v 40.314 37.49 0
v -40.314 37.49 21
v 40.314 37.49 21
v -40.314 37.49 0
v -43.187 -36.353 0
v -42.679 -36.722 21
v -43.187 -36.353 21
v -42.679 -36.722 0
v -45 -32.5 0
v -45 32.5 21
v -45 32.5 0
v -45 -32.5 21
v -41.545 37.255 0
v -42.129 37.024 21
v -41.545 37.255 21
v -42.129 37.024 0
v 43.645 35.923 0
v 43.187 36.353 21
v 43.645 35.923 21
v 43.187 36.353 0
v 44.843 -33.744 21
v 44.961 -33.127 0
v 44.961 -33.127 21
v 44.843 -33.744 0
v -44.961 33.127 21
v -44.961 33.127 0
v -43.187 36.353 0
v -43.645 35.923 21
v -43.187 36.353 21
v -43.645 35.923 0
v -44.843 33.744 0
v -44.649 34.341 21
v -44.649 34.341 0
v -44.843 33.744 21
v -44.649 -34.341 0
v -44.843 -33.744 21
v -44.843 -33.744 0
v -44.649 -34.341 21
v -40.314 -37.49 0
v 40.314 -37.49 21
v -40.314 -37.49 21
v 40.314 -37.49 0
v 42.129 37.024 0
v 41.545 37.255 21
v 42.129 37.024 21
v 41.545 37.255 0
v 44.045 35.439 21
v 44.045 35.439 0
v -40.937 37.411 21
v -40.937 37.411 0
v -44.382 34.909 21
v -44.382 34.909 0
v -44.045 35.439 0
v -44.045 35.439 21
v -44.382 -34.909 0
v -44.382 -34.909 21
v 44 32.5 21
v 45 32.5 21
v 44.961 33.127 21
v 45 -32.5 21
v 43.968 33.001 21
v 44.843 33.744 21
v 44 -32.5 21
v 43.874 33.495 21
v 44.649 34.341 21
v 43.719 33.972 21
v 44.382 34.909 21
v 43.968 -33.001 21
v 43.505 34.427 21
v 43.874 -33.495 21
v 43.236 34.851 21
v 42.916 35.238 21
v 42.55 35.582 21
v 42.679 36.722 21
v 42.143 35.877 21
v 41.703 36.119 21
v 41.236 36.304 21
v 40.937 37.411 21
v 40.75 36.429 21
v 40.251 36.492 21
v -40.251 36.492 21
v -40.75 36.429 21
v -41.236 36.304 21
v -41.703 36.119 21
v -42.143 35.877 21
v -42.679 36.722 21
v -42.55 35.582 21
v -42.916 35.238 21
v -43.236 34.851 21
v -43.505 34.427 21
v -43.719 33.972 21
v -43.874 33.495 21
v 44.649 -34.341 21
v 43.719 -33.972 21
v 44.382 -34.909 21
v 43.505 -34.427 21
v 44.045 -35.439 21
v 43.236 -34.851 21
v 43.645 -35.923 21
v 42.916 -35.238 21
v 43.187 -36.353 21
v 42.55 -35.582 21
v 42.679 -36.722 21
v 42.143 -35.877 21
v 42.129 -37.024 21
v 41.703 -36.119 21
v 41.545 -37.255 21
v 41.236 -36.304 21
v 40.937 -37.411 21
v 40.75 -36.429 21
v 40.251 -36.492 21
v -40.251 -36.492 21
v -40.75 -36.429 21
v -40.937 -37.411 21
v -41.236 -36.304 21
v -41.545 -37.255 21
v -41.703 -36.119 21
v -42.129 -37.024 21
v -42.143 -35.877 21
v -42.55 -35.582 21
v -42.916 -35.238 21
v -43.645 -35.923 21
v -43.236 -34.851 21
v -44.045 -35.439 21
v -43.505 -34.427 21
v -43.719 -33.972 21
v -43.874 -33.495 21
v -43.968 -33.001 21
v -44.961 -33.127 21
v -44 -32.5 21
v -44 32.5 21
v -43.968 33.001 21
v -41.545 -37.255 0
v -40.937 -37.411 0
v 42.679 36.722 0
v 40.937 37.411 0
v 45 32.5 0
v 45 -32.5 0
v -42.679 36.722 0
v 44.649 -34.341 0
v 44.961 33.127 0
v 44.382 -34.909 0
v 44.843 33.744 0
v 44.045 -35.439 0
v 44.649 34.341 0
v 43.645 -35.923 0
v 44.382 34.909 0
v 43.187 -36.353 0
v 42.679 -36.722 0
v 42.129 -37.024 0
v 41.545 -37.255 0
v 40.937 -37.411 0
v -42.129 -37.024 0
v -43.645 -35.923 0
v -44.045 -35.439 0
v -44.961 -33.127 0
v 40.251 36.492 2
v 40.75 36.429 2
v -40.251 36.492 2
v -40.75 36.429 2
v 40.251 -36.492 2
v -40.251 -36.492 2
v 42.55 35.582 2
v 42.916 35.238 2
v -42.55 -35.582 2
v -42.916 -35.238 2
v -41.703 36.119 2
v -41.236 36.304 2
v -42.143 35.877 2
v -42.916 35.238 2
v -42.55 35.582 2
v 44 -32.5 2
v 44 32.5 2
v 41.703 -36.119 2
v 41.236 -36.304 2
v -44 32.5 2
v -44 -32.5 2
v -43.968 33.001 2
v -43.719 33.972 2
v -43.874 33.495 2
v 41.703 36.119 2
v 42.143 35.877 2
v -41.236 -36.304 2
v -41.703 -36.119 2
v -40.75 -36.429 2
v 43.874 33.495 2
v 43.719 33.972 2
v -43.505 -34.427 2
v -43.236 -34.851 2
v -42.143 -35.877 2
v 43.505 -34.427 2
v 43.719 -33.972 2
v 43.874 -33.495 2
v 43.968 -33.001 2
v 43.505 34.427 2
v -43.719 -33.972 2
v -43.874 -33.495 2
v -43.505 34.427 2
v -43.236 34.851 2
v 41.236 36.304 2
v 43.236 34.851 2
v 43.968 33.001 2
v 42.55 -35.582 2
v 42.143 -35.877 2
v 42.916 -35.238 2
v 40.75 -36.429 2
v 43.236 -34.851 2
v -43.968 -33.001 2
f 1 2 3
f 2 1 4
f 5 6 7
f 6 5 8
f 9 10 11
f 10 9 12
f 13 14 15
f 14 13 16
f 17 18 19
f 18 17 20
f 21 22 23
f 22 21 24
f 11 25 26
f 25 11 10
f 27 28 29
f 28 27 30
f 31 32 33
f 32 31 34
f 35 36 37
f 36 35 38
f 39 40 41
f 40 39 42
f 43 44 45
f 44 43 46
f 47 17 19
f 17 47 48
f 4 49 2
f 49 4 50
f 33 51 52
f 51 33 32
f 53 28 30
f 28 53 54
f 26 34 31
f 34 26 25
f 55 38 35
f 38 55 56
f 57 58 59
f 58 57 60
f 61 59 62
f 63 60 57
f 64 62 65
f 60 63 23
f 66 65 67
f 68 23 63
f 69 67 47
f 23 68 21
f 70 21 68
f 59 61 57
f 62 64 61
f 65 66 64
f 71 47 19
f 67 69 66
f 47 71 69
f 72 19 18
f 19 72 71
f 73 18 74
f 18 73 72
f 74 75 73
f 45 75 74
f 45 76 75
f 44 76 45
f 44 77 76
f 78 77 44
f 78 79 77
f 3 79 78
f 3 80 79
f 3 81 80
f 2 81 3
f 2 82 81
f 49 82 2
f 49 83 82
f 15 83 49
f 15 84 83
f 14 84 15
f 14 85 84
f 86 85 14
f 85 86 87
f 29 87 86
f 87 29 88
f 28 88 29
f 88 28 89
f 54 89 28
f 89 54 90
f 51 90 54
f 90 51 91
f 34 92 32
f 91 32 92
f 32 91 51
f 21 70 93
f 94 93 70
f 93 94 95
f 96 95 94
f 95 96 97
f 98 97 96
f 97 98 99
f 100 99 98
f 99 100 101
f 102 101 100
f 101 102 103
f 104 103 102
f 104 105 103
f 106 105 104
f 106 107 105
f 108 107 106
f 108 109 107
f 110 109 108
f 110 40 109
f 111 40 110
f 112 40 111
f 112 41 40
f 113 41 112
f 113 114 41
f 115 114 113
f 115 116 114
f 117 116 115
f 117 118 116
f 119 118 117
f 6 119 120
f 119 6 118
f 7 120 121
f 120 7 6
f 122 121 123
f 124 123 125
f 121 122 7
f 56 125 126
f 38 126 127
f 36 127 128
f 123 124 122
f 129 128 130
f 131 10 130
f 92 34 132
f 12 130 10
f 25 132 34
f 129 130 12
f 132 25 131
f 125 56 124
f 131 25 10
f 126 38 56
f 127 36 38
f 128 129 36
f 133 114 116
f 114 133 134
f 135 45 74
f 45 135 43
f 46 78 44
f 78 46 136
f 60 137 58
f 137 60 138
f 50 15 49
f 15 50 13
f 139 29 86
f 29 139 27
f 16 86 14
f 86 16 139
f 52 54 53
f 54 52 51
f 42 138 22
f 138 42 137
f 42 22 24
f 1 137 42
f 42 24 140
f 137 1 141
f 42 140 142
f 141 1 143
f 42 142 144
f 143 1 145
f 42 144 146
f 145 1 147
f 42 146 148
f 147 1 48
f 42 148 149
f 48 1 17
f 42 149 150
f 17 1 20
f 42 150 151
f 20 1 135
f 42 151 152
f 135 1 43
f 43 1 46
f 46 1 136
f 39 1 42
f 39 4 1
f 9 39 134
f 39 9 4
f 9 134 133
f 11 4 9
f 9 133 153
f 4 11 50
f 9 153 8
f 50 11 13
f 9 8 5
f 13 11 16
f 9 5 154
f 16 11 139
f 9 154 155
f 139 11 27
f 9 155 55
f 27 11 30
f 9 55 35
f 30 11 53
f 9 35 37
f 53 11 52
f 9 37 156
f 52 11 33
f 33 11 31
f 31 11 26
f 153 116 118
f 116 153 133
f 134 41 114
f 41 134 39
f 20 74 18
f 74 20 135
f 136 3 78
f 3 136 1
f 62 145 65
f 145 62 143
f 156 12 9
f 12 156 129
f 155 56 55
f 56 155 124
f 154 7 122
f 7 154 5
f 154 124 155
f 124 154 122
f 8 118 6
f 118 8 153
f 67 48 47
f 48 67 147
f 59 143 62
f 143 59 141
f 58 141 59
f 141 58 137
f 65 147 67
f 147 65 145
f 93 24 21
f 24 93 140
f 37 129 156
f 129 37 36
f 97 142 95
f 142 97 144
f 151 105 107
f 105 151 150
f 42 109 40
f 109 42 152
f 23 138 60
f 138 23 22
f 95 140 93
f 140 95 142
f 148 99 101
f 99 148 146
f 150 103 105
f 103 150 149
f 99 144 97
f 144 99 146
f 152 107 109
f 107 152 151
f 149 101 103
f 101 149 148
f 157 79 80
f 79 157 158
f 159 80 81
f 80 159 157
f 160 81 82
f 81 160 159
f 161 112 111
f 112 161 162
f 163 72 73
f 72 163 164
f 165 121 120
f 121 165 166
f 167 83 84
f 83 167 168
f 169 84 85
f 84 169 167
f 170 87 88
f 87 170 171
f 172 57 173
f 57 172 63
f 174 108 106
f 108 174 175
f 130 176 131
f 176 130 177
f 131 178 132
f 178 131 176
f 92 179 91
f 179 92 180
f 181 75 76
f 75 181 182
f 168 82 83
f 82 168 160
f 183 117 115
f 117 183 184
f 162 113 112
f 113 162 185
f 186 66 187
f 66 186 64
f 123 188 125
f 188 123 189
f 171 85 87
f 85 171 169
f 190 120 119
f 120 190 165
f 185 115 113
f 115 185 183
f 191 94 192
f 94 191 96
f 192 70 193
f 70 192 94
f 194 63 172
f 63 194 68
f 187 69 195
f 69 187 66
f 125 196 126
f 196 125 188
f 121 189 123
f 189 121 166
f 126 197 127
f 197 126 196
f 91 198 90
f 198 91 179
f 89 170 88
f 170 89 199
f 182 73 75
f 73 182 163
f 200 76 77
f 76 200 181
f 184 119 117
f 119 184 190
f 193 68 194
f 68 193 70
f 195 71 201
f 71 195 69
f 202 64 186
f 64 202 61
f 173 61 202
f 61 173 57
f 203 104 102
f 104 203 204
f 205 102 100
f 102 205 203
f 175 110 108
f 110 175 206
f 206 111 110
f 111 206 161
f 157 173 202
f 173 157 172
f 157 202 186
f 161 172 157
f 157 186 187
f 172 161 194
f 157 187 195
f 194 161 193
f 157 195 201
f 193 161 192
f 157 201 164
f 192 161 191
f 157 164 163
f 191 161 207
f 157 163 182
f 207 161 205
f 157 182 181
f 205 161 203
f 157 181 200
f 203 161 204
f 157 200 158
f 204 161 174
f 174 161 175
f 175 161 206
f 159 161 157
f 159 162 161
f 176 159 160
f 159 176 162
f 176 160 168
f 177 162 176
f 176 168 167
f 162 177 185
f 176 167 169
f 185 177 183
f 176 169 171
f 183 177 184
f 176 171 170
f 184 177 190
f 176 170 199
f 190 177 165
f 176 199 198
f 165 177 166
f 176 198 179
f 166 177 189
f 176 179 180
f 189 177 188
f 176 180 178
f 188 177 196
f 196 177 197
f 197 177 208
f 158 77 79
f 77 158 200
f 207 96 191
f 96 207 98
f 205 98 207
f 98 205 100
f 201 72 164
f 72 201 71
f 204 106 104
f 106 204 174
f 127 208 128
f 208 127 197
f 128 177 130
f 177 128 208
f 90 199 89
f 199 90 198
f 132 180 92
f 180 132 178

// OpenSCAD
$fn = 50;


difference() {
	union() {
		hull() {
			translate(v = [-40.0000000000, 32.5000000000, 0]) {
				cylinder(h = 21, r = 5);
			}
			translate(v = [40.0000000000, 32.5000000000, 0]) {
				cylinder(h = 21, r = 5);
			}
			translate(v = [-40.0000000000, -32.5000000000, 0]) {
				cylinder(h = 21, r = 5);
			}
			translate(v = [40.0000000000, -32.5000000000, 0]) {
				cylinder(h = 21, r = 5);
			}
		}
	}
	union() {
		translate(v = [0, 0, 2]) {
			hull() {
				translate(v = [-40.0000000000, 32.5000000000, 0]) {
					cylinder(h = 19, r = 4);
				}
				translate(v = [40.0000000000, 32.5000000000, 0]) {
					cylinder(h = 19, r = 4);
				}
				translate(v = [-40.0000000000, -32.5000000000, 0]) {
					cylinder(h = 19, r = 4);
				}
				translate(v = [40.0000000000, -32.5000000000, 0]) {
					cylinder(h = 19, r = 4);
				}
			}
		}
	}
}
